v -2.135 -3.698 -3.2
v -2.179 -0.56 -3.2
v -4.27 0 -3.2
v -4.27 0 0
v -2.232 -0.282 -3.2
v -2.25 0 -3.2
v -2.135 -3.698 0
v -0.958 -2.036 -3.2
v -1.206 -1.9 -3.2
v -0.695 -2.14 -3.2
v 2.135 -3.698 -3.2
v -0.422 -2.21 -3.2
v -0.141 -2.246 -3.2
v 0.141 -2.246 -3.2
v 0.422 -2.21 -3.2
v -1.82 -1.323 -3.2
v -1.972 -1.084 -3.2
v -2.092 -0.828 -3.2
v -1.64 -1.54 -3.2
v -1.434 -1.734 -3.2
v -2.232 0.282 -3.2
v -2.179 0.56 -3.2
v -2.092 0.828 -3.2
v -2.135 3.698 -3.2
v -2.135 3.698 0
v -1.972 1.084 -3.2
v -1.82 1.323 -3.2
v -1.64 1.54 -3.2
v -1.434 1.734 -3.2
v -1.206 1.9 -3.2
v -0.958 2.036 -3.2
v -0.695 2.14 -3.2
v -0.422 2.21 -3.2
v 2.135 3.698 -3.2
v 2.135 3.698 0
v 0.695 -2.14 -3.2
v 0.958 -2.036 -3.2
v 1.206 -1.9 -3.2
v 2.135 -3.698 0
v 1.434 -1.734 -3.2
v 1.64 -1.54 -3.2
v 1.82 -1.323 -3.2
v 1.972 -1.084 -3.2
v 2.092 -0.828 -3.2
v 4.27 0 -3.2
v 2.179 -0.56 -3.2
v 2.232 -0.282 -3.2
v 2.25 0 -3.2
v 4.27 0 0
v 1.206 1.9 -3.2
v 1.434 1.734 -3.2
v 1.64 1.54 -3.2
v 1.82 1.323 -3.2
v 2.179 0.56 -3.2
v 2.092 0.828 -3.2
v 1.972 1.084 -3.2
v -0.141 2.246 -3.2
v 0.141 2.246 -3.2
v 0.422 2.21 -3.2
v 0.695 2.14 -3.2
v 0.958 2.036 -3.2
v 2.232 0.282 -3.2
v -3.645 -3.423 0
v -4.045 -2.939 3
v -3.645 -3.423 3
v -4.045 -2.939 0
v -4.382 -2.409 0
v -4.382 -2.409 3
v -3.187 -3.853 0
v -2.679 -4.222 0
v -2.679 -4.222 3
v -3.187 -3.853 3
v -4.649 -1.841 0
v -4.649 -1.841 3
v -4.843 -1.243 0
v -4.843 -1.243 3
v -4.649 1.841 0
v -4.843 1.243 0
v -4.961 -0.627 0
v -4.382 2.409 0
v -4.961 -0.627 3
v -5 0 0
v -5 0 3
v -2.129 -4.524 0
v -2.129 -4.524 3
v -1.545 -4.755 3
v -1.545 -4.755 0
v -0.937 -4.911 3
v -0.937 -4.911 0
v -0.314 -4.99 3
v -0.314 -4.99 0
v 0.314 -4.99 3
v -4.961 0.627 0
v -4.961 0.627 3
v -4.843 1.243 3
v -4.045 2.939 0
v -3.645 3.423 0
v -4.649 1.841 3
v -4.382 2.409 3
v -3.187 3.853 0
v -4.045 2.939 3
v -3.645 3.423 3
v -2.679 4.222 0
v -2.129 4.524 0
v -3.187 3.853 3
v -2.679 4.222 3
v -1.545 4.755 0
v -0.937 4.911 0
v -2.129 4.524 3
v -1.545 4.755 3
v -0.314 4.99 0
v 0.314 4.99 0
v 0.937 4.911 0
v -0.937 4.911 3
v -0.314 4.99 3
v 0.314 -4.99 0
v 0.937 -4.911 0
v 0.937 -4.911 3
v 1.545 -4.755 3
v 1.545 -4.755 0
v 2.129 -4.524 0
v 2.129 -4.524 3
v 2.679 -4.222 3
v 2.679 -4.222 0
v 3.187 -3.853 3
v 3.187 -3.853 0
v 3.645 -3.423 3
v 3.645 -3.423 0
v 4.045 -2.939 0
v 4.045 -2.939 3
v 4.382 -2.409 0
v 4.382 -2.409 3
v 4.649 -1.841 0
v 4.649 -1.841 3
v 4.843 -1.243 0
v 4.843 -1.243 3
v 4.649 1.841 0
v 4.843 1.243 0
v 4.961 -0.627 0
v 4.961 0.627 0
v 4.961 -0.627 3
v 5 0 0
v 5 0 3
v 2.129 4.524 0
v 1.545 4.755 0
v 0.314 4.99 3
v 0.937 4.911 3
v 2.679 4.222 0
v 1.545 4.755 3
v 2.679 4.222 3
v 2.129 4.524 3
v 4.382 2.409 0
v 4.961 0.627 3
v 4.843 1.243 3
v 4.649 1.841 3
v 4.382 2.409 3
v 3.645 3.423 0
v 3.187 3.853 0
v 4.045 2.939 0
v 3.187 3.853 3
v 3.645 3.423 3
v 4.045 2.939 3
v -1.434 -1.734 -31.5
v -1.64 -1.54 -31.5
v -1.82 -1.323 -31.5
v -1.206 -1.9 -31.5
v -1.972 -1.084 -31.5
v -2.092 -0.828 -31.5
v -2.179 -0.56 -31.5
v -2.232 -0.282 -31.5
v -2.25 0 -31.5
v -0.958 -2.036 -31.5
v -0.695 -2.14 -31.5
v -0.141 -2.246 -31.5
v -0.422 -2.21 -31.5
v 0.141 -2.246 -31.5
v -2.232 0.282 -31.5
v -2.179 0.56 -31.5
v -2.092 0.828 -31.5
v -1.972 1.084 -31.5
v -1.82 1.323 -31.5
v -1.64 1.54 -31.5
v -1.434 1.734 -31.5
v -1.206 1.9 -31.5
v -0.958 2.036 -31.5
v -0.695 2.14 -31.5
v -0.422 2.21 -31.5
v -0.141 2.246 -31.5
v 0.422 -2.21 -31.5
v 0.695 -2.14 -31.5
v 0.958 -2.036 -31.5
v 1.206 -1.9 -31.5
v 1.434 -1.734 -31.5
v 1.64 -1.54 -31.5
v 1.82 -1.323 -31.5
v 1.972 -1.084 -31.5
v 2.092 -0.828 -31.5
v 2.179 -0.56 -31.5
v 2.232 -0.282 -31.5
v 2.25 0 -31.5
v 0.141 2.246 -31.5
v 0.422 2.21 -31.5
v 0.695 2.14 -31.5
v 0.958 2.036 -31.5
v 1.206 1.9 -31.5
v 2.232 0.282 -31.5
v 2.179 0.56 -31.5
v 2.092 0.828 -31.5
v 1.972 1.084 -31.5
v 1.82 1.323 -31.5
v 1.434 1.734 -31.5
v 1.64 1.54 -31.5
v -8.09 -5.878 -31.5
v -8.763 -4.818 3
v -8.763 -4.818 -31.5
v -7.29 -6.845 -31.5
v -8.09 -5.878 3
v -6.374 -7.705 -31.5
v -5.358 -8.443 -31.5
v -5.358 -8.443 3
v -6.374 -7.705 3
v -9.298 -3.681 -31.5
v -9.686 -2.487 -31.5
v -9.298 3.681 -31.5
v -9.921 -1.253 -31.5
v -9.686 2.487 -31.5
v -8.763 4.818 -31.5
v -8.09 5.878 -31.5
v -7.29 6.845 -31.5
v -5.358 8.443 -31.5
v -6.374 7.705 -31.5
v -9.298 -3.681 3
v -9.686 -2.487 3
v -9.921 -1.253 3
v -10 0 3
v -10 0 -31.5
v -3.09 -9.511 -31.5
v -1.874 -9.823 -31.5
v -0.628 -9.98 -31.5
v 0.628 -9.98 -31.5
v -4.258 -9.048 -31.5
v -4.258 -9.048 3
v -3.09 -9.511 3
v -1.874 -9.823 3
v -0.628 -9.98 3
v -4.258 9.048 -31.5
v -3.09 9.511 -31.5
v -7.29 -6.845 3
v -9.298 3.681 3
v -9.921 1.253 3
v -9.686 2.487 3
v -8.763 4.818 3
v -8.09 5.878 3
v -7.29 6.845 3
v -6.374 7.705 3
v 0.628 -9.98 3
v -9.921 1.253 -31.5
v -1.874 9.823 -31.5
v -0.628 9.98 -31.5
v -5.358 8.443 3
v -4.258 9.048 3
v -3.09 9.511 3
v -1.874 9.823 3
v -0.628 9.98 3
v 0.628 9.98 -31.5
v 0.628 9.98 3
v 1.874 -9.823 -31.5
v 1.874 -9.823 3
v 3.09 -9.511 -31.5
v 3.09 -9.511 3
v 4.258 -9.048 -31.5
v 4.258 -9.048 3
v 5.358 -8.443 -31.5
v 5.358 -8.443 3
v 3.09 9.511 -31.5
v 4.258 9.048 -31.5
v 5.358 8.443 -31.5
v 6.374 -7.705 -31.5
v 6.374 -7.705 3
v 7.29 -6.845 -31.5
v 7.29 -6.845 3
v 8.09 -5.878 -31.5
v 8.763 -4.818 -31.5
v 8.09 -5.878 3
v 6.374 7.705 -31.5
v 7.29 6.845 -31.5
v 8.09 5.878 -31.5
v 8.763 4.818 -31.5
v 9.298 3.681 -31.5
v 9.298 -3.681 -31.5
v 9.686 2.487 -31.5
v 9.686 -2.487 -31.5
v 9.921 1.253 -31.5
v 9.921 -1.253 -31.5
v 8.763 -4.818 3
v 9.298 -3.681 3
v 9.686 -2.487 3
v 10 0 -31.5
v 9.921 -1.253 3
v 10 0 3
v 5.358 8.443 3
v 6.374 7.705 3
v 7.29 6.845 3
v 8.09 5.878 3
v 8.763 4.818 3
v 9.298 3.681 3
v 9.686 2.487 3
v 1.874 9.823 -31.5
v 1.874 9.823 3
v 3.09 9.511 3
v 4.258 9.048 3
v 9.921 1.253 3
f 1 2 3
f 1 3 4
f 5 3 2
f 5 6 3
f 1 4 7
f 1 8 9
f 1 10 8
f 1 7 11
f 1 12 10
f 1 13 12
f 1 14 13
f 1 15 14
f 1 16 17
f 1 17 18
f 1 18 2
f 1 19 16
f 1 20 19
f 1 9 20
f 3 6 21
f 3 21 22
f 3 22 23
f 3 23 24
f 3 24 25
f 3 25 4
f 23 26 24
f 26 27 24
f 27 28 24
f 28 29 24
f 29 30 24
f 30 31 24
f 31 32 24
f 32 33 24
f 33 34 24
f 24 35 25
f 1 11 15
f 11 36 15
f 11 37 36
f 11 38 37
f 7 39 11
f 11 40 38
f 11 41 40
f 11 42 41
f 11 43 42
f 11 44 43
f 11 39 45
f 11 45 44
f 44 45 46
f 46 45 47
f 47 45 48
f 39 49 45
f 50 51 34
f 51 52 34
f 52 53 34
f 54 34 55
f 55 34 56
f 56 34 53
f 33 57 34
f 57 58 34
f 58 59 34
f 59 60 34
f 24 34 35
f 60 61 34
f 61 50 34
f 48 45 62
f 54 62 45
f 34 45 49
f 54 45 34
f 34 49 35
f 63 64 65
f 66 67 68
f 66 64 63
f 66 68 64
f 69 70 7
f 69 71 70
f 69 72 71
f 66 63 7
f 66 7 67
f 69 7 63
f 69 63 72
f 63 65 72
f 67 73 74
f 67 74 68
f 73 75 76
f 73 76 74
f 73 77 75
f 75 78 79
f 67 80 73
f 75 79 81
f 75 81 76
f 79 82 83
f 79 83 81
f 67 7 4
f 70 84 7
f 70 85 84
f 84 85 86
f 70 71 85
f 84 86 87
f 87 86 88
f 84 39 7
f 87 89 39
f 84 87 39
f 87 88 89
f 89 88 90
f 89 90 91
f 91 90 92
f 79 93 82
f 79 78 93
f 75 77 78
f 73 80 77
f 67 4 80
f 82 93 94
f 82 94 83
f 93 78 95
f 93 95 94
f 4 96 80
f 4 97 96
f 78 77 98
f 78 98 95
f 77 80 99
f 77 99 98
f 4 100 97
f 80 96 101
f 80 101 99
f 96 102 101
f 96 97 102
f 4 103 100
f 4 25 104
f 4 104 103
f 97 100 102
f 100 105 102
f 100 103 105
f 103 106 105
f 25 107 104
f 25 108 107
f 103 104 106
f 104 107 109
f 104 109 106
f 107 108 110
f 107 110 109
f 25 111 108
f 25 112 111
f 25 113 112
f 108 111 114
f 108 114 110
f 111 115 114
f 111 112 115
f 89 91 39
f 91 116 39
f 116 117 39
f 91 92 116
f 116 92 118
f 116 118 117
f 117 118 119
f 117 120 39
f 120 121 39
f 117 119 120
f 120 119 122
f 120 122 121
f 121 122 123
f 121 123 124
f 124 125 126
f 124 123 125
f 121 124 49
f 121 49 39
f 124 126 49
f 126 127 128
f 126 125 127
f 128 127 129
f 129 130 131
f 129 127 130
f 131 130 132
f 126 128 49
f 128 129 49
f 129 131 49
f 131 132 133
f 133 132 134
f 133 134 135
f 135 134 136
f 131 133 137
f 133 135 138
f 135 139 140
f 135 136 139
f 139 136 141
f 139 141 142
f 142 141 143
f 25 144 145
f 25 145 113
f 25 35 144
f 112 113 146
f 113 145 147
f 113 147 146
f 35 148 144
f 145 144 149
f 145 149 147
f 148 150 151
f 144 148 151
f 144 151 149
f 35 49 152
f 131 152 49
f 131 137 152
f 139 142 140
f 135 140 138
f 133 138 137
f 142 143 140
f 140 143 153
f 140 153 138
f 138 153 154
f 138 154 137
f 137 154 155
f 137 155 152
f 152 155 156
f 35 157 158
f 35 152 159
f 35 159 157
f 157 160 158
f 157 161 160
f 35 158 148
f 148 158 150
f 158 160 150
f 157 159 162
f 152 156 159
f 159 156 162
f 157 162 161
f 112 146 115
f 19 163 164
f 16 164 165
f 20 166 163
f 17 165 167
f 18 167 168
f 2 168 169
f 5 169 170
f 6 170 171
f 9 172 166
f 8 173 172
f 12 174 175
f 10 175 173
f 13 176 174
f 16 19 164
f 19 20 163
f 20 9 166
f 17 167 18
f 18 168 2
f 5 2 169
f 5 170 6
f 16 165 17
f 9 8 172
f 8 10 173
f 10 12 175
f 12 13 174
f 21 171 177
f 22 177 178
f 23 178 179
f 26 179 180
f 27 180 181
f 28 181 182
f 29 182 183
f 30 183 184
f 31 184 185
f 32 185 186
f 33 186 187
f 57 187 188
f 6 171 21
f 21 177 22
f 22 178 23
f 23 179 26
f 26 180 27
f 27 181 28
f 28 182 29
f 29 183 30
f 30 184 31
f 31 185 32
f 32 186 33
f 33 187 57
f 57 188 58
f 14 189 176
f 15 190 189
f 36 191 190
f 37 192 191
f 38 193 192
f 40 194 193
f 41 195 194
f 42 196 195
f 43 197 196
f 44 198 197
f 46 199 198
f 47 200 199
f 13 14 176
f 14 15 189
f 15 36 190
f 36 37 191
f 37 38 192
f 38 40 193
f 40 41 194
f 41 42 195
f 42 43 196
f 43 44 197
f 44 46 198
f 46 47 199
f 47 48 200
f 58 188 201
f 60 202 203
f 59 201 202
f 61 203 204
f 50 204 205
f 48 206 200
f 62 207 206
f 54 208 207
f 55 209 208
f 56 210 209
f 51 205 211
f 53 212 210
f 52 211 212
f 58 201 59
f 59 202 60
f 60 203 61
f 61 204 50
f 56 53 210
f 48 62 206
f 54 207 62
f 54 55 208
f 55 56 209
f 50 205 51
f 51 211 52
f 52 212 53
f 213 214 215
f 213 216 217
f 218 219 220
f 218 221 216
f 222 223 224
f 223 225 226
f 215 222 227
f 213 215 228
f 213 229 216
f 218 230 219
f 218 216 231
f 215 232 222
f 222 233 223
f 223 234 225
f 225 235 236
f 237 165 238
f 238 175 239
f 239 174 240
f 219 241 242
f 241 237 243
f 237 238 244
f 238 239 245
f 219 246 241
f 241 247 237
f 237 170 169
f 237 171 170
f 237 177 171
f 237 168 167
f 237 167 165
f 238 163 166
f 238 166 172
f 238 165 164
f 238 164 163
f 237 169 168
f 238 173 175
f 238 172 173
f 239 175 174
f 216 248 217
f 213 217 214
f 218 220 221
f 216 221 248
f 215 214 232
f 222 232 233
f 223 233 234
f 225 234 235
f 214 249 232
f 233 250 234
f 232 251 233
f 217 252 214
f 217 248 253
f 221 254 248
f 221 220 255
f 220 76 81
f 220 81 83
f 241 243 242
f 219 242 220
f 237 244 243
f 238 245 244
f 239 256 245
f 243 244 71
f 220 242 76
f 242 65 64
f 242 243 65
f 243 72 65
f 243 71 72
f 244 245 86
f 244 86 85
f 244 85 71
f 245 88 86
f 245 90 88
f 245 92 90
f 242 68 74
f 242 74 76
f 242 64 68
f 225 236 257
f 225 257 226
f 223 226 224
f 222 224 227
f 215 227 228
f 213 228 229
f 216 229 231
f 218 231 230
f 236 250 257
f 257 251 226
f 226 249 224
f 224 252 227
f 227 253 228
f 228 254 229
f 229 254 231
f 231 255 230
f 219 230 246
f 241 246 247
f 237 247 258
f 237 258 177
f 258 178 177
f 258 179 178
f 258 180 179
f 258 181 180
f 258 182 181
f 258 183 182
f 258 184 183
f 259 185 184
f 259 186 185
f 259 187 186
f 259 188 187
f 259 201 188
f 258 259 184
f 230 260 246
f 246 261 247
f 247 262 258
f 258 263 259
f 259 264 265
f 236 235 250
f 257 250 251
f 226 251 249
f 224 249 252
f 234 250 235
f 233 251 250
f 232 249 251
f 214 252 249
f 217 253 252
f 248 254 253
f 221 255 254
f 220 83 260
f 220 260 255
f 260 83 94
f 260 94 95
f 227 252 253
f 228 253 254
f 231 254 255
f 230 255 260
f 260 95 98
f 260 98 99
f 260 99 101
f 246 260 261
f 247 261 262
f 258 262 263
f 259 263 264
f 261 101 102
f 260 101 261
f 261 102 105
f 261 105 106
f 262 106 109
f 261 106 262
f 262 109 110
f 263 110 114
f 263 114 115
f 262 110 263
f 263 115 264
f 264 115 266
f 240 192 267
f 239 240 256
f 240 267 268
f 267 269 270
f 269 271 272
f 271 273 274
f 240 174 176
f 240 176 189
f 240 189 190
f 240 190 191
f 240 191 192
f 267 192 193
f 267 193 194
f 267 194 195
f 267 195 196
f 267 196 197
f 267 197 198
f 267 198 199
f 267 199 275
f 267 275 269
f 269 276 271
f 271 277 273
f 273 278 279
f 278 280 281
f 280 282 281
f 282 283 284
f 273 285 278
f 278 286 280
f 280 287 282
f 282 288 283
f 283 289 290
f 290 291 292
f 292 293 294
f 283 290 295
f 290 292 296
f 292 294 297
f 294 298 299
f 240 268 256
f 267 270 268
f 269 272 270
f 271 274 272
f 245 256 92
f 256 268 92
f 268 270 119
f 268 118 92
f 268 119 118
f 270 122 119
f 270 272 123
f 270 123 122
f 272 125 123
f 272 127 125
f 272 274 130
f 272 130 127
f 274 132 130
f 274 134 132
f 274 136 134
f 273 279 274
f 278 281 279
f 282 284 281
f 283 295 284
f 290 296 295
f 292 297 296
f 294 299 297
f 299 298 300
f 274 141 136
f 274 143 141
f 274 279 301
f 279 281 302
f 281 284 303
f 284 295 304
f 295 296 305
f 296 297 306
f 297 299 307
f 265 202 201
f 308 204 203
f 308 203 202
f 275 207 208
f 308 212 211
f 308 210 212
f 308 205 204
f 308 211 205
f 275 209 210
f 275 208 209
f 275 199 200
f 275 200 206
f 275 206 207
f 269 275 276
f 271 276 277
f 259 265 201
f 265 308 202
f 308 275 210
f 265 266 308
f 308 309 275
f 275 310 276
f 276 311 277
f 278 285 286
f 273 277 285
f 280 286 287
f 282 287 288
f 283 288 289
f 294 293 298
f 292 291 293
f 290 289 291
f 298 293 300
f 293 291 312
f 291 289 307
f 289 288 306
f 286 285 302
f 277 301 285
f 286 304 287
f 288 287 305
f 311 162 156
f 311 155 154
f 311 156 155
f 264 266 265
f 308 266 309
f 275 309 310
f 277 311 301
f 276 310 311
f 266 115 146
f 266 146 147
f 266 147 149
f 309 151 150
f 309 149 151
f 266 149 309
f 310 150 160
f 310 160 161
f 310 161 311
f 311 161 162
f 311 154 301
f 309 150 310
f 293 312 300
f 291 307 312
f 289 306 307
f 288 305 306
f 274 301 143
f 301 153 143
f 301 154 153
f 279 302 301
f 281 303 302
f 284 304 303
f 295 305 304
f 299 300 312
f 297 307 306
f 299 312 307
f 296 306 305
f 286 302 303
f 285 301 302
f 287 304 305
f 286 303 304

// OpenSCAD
$fn = 50;

difference() {
	union() {
		translate(v = [0, 0, -31.5]) {
			cylinder(h = 34.5, r = 10.0);
		}
	}
	union() {
		translate(v = [0, 0, 0]) {
			rotate(a = [0, 0, 0]) {
				difference() {
					union() {
						translate(v = [0, 0, -3.2]) {
							linear_extrude(height = 3.2) {
								polygon(points = [[4.2698, 0.0], [2.1349000000000005, 3.697755269078796], [-2.134899999999999, 3.6977552690787965], [-4.2698, 5.228996902999369e-16], [-2.134900000000002, -3.6977552690787956], [2.1348999999999974, -3.697755269078798]]);
							}
						}
					}
					union();
				}
			}
		}
		#cylinder(h = 3, r = 5.0);
		#translate(v = [0, 0, -100.0]) {
			cylinder(h = 200, r = 2.25);
		}
	}
}
